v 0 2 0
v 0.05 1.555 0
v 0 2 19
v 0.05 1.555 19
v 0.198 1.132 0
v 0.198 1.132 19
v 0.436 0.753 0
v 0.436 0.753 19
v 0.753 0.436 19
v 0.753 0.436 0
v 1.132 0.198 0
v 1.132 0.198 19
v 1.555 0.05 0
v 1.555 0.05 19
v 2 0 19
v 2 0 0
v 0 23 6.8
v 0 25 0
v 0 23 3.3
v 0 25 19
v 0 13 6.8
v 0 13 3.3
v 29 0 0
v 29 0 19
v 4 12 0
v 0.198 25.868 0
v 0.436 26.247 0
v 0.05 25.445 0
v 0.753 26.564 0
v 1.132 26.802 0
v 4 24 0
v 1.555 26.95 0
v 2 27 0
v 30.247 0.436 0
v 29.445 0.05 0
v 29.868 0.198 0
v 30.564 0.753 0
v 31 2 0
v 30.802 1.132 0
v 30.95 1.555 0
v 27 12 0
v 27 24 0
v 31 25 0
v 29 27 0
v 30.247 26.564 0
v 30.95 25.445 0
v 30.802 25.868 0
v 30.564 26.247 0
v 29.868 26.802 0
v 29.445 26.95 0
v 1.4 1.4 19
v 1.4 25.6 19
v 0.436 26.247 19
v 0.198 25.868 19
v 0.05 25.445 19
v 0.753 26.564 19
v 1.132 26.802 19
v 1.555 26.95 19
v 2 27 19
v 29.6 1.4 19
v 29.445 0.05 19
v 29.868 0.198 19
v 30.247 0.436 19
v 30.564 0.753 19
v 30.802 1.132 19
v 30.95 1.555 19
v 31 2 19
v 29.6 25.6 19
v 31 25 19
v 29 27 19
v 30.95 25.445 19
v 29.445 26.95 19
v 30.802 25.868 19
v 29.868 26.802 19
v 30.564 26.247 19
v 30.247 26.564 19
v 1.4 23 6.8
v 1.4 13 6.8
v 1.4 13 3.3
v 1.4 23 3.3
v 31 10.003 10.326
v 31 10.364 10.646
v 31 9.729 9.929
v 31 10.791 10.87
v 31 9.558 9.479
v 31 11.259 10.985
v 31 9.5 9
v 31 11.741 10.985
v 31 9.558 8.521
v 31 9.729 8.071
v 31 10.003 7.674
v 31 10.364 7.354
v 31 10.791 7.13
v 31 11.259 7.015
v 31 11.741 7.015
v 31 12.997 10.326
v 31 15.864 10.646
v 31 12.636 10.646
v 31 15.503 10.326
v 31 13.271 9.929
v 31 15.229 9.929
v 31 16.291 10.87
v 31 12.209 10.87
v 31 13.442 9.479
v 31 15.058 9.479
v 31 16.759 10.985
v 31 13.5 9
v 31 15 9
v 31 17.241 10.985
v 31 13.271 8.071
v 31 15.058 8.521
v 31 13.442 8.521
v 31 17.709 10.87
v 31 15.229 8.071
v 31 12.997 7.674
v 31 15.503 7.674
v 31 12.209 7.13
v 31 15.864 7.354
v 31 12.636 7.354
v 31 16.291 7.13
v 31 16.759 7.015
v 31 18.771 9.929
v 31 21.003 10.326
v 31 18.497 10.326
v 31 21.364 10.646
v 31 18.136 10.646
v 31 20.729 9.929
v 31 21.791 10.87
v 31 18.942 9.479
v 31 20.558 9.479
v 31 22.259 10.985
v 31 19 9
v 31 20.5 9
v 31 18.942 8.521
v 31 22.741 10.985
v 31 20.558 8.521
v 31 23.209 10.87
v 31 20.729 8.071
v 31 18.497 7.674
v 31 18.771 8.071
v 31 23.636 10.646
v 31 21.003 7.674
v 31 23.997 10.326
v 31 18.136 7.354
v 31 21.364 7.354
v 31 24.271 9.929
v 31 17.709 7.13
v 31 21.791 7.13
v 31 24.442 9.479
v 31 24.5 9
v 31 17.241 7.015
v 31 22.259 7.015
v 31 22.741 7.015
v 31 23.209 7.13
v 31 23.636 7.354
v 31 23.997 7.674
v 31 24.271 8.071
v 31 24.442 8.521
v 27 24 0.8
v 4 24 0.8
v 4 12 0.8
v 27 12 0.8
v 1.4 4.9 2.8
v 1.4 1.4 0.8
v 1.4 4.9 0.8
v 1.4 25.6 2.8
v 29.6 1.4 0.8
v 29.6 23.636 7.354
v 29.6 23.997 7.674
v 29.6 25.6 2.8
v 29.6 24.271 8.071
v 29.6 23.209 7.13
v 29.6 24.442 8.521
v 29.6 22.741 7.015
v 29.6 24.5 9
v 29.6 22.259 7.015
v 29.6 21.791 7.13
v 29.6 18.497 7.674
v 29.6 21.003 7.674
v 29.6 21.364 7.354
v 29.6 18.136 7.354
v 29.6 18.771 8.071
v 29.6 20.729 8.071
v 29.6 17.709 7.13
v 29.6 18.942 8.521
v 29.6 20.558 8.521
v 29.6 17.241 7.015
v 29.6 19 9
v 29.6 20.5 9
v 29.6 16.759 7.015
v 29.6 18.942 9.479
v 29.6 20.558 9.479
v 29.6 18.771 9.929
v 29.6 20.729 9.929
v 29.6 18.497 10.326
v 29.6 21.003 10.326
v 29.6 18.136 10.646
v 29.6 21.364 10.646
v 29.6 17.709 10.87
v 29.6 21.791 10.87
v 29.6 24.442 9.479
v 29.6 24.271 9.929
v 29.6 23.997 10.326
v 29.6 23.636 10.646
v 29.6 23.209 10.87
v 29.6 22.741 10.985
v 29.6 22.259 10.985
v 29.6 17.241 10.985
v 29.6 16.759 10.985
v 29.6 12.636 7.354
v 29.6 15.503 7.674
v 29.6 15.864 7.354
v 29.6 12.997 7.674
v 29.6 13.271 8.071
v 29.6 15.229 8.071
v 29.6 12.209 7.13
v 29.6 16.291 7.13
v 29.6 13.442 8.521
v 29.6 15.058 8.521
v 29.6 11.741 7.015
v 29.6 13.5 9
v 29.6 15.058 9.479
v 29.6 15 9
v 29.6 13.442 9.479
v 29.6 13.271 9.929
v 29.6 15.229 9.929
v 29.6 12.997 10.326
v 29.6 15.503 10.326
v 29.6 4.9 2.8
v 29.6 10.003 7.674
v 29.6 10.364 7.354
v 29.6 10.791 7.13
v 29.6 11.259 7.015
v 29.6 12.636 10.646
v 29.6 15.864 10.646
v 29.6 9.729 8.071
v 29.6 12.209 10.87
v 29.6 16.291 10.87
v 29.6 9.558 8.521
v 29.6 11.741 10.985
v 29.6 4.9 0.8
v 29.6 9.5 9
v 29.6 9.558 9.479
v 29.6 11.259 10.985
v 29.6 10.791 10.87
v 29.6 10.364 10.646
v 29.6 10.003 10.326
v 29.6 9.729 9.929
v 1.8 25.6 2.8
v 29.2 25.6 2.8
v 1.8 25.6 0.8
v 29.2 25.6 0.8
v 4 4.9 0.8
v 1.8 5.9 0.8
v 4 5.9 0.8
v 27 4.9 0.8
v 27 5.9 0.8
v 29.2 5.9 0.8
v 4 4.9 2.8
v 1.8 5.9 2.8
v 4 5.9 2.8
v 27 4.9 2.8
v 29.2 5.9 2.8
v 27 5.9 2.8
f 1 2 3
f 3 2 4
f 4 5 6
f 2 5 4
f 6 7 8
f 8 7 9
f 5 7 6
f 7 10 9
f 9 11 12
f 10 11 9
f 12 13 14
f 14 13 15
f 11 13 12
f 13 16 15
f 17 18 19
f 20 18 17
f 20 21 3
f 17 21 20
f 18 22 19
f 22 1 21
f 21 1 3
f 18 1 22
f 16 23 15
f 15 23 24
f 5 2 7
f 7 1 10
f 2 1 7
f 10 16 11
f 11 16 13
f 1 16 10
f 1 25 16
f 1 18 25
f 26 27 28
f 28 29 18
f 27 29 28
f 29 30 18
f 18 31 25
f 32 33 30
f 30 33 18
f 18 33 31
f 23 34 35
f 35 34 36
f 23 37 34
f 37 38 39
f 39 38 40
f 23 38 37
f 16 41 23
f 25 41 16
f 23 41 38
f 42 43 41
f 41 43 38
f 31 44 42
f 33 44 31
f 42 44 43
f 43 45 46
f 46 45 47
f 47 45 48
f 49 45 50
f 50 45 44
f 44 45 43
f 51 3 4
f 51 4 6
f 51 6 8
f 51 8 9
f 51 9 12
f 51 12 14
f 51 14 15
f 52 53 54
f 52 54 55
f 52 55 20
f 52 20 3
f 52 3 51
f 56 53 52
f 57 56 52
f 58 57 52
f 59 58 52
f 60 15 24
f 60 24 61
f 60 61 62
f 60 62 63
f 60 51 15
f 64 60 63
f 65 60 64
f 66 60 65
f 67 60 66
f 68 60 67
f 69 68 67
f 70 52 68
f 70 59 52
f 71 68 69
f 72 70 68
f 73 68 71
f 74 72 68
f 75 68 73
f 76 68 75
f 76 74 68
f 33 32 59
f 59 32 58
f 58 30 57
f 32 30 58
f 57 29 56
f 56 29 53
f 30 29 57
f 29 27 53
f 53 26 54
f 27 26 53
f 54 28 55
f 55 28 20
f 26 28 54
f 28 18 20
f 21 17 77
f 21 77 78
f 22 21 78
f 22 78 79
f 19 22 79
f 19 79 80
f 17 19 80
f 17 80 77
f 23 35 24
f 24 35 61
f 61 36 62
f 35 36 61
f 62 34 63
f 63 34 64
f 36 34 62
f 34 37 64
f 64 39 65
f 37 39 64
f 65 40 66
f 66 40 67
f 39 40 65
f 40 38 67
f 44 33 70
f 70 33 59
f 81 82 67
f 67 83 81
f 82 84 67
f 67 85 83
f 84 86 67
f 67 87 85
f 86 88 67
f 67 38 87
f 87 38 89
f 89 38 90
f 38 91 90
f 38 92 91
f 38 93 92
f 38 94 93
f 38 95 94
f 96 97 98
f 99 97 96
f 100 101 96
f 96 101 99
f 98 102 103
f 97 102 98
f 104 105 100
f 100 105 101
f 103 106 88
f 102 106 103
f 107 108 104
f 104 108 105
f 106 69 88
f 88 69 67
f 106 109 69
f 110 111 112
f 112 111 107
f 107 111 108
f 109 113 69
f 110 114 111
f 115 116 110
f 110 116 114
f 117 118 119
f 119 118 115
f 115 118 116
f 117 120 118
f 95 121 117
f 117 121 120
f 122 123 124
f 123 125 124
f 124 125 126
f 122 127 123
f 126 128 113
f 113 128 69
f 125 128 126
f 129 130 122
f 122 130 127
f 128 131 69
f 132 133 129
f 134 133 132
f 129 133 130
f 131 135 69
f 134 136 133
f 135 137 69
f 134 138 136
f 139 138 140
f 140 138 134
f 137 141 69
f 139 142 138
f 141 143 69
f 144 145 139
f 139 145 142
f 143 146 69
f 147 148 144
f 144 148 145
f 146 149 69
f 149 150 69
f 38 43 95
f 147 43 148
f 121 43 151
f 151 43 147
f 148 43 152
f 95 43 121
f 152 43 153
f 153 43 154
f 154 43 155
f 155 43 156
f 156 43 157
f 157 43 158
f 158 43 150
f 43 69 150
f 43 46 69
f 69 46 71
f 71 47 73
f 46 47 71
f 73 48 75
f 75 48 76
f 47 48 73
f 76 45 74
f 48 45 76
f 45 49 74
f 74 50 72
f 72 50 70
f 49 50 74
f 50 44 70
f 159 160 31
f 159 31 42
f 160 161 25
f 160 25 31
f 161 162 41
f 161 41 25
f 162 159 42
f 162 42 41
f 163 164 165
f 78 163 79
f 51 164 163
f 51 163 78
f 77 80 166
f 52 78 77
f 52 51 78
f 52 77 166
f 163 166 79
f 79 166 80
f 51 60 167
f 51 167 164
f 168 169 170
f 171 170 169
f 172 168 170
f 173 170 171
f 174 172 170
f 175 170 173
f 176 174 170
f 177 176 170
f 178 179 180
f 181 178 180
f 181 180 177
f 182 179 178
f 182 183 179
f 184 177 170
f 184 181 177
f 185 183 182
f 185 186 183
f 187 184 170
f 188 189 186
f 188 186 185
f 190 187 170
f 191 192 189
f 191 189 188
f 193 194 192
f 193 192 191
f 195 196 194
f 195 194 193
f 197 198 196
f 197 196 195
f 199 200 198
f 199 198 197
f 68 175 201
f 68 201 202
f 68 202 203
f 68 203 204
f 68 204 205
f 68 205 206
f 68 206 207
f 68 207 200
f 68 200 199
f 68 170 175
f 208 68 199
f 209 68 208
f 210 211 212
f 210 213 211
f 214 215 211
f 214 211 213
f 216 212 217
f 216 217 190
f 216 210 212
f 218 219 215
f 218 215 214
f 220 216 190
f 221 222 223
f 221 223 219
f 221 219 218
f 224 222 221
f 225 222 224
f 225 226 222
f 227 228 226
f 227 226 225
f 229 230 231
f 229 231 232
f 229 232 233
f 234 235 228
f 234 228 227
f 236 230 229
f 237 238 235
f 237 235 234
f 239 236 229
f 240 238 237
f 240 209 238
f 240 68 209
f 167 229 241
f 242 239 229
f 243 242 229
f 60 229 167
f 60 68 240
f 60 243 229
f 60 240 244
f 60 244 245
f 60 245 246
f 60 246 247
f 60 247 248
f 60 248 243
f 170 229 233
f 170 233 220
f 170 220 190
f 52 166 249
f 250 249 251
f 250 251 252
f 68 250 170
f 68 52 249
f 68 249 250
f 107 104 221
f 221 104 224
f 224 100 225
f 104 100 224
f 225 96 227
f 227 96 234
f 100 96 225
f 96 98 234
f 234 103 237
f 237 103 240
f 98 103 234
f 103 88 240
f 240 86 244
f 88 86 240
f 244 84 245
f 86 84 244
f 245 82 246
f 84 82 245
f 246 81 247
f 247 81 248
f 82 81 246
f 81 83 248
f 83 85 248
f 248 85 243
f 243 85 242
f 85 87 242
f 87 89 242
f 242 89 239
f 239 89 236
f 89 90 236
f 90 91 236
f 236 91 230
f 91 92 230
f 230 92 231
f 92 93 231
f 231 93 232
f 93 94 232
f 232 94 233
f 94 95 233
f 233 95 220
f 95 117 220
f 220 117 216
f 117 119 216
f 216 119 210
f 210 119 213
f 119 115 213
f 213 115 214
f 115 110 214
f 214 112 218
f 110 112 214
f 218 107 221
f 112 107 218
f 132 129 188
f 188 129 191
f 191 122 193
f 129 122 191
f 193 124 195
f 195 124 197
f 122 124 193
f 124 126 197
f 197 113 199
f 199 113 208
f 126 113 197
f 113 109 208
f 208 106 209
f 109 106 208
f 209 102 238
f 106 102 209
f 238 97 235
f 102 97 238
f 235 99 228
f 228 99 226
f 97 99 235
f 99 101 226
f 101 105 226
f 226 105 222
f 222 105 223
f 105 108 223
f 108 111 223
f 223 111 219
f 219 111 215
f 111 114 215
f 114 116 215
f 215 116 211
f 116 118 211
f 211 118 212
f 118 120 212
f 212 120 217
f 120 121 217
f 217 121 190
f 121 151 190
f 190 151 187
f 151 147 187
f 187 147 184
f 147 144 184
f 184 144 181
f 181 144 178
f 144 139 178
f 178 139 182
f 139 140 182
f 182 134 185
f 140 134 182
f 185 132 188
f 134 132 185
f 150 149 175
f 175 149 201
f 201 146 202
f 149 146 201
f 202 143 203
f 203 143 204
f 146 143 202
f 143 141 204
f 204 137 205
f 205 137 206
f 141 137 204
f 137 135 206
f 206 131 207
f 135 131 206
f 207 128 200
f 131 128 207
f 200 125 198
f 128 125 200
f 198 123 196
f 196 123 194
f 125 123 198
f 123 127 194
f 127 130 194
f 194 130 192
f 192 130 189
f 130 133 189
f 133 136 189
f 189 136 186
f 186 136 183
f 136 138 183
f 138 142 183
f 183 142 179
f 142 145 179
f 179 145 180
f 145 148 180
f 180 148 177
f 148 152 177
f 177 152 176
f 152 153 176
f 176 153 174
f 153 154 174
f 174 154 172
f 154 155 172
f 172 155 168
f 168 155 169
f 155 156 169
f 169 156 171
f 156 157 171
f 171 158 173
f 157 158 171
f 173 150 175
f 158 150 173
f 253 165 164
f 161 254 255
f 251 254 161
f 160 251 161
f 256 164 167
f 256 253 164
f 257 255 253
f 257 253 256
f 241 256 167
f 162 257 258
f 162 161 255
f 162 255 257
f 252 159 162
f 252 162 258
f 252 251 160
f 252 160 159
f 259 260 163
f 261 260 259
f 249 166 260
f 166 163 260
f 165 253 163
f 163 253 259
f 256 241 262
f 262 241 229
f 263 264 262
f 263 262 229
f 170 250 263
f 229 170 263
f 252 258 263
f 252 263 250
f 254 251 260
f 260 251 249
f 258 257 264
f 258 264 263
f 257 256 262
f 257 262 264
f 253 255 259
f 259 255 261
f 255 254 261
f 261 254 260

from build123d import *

# Parameters (mm, degrees)
PAD_DEPTH       = 19
SKETCH001_W     = 28.2
SKETCH001_H     = 24.2
POCKET_DEPTH    = 18.2
SKETCH002_W     = 23
SKETCH002_H     = 12
POCKET001_DEPTH = 0.8
SKETCH003_R     = 2
POCKET002_DEPTH = 1.4
SKETCH004_W     = 10
SKETCH004_H     = 3.5
POCKET003_DEPTH = 1.4
PAD001_DEPTH    = 2


with BuildPart() as part:
    # Sketch → Pad (new body)
    with BuildSketch(Plane.XY):
        with BuildLine():
            ThreePointArc((0, 2), (0.585786, 0.585786), (2, 0))
            Line((2, 0), (29, 0))
            ThreePointArc((29, 0), (30.414214, 0.585786), (31, 2))
            Line((31, 2), (31, 25))
            ThreePointArc((31, 25), (30.414214, 26.414214), (29, 27))
            Line((29, 27), (2, 27))
            ThreePointArc((2, 27), (0.585786, 26.414214), (0, 25))
            Line((0, 25), (0, 2))
        make_face()
    extrude(amount=PAD_DEPTH)

    # Sketch001 (on Face10 of Pad) → Pocket (cut)
    with BuildSketch(Plane.XY.offset(19)):
        with Locations((15.5, 13.5)):
            Rectangle(SKETCH001_W, SKETCH001_H)
    extrude(amount=-POCKET_DEPTH, mode=Mode.SUBTRACT)

    # Sketch002 (on Face15 of Pocket) → Pocket001 (cut)
    with BuildSketch(Plane.XY.offset(0.8)):
        with Locations((15.5, 18)):
            Rectangle(SKETCH002_W, SKETCH002_H)
    extrude(amount=-POCKET001_DEPTH, mode=Mode.SUBTRACT)

    # Sketch003 (on Face9 of Pocket001) → Pocket002 (cut)
    with BuildSketch(Plane.YZ.offset(31)):
        with Locations((11.5, 9)):
            Circle(SKETCH003_R)
        with Locations((17, 9)):
            Circle(SKETCH003_R)
        with Locations((22.5, 9)):
            Circle(SKETCH003_R)
    extrude(amount=-POCKET002_DEPTH, mode=Mode.SUBTRACT)

    # Sketch004 (on Face2 of Pocket002) → Pocket003 (cut)
    with BuildSketch(Plane(origin=(0, 0, 0), x_dir=(0, -1, 0), z_dir=(-1, 0, 0))):
        with Locations((-18, 5.05)):
            Rectangle(SKETCH004_W, SKETCH004_H)
    extrude(amount=-POCKET003_DEPTH, mode=Mode.SUBTRACT)

    # Sketch005 (on Face26 of Pocket003) → Pad001 (join)
    with BuildSketch(Plane.XY.offset(0.8)):
        Polygon((1.2, 25.6), (1.2, 4.9), (4, 4.9), (4, 5.9), (1.8, 5.9), (1.8, 25.6), align=None)
        Polygon((27, 4.9), (29.8, 4.9), (29.8, 25.6), (29.2, 25.6), (29.2, 5.9), (27, 5.9), align=None)
    extrude(amount=PAD001_DEPTH)


solid = part.part
